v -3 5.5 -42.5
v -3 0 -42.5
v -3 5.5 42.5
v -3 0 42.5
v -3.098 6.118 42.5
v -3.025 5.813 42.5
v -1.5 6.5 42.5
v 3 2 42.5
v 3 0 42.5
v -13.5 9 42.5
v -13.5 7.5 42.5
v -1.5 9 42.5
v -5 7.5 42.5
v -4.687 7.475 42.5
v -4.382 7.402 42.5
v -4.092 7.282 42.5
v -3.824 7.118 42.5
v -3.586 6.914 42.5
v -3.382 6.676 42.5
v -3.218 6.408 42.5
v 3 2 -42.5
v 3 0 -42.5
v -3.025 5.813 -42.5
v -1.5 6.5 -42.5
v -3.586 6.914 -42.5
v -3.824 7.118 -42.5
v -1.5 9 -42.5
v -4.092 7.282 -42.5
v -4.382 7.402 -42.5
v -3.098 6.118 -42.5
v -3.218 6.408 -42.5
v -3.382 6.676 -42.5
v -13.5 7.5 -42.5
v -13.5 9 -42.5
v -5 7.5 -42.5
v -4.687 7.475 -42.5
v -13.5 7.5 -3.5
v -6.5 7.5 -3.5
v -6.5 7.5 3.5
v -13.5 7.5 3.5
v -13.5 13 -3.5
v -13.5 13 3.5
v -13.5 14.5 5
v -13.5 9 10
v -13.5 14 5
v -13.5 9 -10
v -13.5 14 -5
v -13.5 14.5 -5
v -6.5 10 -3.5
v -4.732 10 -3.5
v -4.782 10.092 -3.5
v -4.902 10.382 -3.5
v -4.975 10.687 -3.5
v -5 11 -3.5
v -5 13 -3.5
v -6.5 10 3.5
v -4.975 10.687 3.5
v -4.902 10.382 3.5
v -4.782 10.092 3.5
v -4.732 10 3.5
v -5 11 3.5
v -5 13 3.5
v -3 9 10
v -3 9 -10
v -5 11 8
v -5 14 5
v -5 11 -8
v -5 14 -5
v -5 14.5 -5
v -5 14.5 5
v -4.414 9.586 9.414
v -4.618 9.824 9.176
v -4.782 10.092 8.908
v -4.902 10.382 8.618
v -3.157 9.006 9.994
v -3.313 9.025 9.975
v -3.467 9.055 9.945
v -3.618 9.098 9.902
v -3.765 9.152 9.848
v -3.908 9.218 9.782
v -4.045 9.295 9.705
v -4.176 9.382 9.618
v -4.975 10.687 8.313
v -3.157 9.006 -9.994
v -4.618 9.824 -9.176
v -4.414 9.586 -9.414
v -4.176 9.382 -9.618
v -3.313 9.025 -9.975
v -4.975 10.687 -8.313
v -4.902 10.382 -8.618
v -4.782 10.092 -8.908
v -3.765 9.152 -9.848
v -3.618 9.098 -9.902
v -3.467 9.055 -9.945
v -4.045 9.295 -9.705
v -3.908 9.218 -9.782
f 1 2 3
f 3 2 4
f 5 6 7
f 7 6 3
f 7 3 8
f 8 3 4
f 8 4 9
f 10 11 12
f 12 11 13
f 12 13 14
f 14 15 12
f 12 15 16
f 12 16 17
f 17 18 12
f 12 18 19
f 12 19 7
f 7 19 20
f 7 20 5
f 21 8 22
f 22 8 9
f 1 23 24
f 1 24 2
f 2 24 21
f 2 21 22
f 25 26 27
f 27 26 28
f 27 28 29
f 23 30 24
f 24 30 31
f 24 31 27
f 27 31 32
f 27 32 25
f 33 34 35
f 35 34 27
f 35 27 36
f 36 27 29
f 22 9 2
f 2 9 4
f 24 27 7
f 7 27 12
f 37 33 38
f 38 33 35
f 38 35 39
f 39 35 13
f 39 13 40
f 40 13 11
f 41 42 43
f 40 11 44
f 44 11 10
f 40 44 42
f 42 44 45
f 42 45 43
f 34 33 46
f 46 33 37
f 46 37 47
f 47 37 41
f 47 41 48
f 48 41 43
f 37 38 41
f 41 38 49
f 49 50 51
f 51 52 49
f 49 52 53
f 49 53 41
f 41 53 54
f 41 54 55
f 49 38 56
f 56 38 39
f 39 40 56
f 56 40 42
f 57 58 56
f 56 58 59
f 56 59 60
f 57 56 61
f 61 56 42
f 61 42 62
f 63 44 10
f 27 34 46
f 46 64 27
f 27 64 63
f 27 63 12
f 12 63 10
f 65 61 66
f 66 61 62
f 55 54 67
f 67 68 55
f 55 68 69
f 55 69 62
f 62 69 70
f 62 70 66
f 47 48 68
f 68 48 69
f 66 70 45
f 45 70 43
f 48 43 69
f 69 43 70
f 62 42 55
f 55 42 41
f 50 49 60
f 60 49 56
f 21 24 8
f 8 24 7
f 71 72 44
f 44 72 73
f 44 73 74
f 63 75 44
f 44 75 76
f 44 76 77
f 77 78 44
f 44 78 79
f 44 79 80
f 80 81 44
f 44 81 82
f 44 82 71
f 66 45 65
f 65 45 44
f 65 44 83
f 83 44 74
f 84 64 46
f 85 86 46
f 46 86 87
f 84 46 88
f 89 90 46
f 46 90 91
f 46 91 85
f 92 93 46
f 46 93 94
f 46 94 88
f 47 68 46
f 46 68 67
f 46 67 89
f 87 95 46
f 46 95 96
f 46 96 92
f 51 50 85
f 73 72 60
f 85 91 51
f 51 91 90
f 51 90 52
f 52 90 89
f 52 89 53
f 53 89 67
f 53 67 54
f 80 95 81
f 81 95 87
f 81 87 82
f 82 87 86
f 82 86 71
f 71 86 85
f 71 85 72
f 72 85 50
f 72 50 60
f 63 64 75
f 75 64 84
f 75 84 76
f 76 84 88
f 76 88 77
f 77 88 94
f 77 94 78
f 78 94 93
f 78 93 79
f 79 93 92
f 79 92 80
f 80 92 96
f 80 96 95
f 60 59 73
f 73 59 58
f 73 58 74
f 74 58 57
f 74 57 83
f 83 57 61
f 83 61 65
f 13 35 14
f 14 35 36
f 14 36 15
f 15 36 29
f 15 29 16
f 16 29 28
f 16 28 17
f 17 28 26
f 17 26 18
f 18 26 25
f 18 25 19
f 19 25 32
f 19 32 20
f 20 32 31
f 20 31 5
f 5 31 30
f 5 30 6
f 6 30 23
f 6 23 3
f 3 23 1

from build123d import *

# Parameters (mm, degrees)
SKETCH_1_W          = 6
SKETCH_1_H          = 85
EXTRUDE_1_DEPTH     = 1.5
SKETCH_2_W          = 1.5
SKETCH_2_H          = 85
EXTRUDE_2_DEPTH     = 6
EXTRUDE_3_DEPTH     = 1.5
SKETCH_4_W          = 7
SKETCH_4_H          = 7
EXTRUDE_4_DEPTH     = 5.5
SKETCH_5_W          = 7
SKETCH_5_H          = 7
CUT_EXTRUDE_1_DEPTH = 4
SKETCH_6_W          = 7
SKETCH_6_H          = 3
CUT_EXTRUDE_2_DEPTH = 4
CHAMFER_1_SIZE      = 5
CHAMFER_2_SIZE      = 5
FILLET_1_R          = 2
FILLET_2_R          = 2


with BuildPart() as part:
    # Эскиз1 → Бобышка-Вытянуть1 (new body)
    with BuildSketch(Plane(origin=(0, 0, 0), x_dir=(1, 0, 0), z_dir=(0, 1, 0))):
        Rectangle(SKETCH_1_W, SKETCH_1_H)
    extrude(amount=EXTRUDE_1_DEPTH)

    # Эскиз2 → Бобышка-Вытянуть2 (add)
    with BuildSketch(Plane(origin=(0, 1.5, 0), x_dir=(1, 0, 0), z_dir=(0, 1, 0))):
        with Locations((-2.25, 0)):
            Rectangle(SKETCH_2_W, SKETCH_2_H)
    extrude(amount=EXTRUDE_2_DEPTH)

    # Эскиз3 → Бобышка-Вытянуть3 (add)
    with BuildSketch(Plane(origin=(0, 7.5, 0), x_dir=(1, 0, 0), z_dir=(0, 1, 0))):
        Polygon((-1.5, -42.5), (-13.5, -42.5), (-13.5, -3.5), (-6.5, -3.5), (-6.5, 3.5), (-13.5, 3.5), (-13.5, 42.5), (-1.5, 42.5), align=None)
    extrude(amount=EXTRUDE_3_DEPTH)

    # Эскиз4 → Бобышка-Вытянуть4 (add)
    with BuildSketch(Plane(origin=(0, 9, 0), x_dir=(1, 0, 0), z_dir=(0, 1, 0))):
        Polygon((-13.5, -3.5), (-13.5, -5), (-5, -5), (-5, 5), (-13.5, 5), (-13.5, 3.5), (-6.5, 3.5), (-6.5, -3.5), align=None)
        with Locations((-10, 0)):
            Rectangle(SKETCH_4_W, SKETCH_4_H)
    extrude(amount=EXTRUDE_4_DEPTH)

    # Эскиз5 → Вырез-Вытянуть1 (cut)
    with BuildSketch(Plane.XZ.offset(-9)):
        with Locations((-10, 0)):
            Rectangle(SKETCH_5_W, SKETCH_5_H)
    extrude(amount=-CUT_EXTRUDE_1_DEPTH, mode=Mode.SUBTRACT)

    # Эскиз6 → Вырез-Вытянуть2 (cut)
    with BuildSketch(Plane(origin=(-5, 0, 0), x_dir=(0, 0, -1), z_dir=(1, 0, 0))):
        with Locations((0, 11.5)):
            Rectangle(SKETCH_6_W, SKETCH_6_H)
    extrude(amount=-CUT_EXTRUDE_2_DEPTH, mode=Mode.SUBTRACT)

    # Фаска1
    # the kernel refuses this chamfer: 5 mm, written as the material it adds along each edge
    with BuildSketch(Plane(origin=(-1.5, 1.5, 42.5), x_dir=(-0.02749587661058636, 0.9996219169112968, 0), z_dir=(0, 0, -1))) as chamfer_1_piece_1_section:
        Polygon((CHAMFER_1_SIZE * 0.999621916911, CHAMFER_1_SIZE * 0.0274958766106), (-CHAMFER_1_SIZE * 0.0274958766106, CHAMFER_1_SIZE * 0.999621916911), (0, 0), align=None)
    chamfer_1_piece_1 = extrude(amount=85, mode=Mode.PRIVATE)
    chamfer_1_piece_1 = split(chamfer_1_piece_1, bisect_by=Plane(origin=(3, 3.179503735, 0), z_dir=(-1, 0, 0)), keep=Keep.TOP, mode=Mode.PRIVATE)
    add(chamfer_1_piece_1)

    # Фаска2
    chamfer_2_edges = [part.edges().sort_by_distance(p)[0] for p in [
        (-9.25, 9, 5),
        (-9.25, 9, -5),
    ]]
    chamfer(chamfer_2_edges, length=CHAMFER_2_SIZE)

    # Скругление1
    # the kernel refuses this fillet: 2 mm, written as the material it adds along each edge
    with BuildSketch(Plane(origin=(-5, 9, -15), x_dir=(1, 0, 0), z_dir=(0, 0, 1))) as fillet_1_piece_1_section:
        with BuildLine():
            CenterArc((FILLET_1_R, FILLET_1_R), FILLET_1_R, 180, 90)
            Line((0, FILLET_1_R), (0, 0))
            Line((0, 0), (FILLET_1_R, 0))
        make_face()
    fillet_1_piece_1 = extrude(amount=30, mode=Mode.PRIVATE)
    fillet_1_piece_1 = split(fillet_1_piece_1, bisect_by=Plane(origin=(-4.478955551, 10.861954239, -8.138045761), z_dir=(0, -0.7071067811865476, 0.7071067811865475)), keep=Keep.TOP, mode=Mode.PRIVATE)
    fillet_1_piece_1 = split(fillet_1_piece_1, bisect_by=Plane(origin=(-4.478955551, 10, -6.592030507), z_dir=(0, -1, 0)), keep=Keep.TOP, mode=Mode.PRIVATE)
    fillet_1_piece_1 = split(fillet_1_piece_1, bisect_by=Plane(origin=(-4.478955551, 9.315938986, -3.5), z_dir=(0, 0, -1)), keep=Keep.TOP, mode=Mode.PRIVATE)
    add(fillet_1_piece_1)
    with BuildSketch(Plane(origin=(-5, 9, -15), x_dir=(1, 0, 0), z_dir=(0, 0, 1))) as fillet_1_piece_2_section:
        with BuildLine():
            CenterArc((FILLET_1_R, FILLET_1_R), FILLET_1_R, 180, 90)
            Line((0, FILLET_1_R), (0, 0))
            Line((0, 0), (FILLET_1_R, 0))
        make_face()
    fillet_1_piece_2 = extrude(amount=30, mode=Mode.PRIVATE)
    fillet_1_piece_2 = split(fillet_1_piece_2, bisect_by=Plane(origin=(-4.950049331, 11.610374757, -7.389625243), z_dir=(0, -0.7071067811865476, 0.7071067811865475)), keep=Keep.TOP, mode=Mode.PRIVATE)
    fillet_1_piece_2 = split(fillet_1_piece_2, bisect_by=Plane(origin=(-4.950049331, 10, -6.093083495), z_dir=(0, 1, 0)), keep=Keep.TOP, mode=Mode.PRIVATE)
    fillet_1_piece_2 = split(fillet_1_piece_2, bisect_by=Plane(origin=(-4.950049331, 10.313833009, -3.5), z_dir=(0, 0, -1)), keep=Keep.TOP, mode=Mode.PRIVATE)
    add(fillet_1_piece_2)
    with BuildSketch(Plane(origin=(-5, 9, -15), x_dir=(1, 0, 0), z_dir=(0, 0, 1))) as fillet_1_piece_3_section:
        with BuildLine():
            CenterArc((FILLET_1_R, FILLET_1_R), FILLET_1_R, 180, 90)
            Line((0, FILLET_1_R), (0, 0))
            Line((0, 0), (FILLET_1_R, 0))
        make_face()
    fillet_1_piece_3 = extrude(amount=30, mode=Mode.PRIVATE)
    fillet_1_piece_3 = split(fillet_1_piece_3, bisect_by=Plane(origin=(-4.48975988, 9.328783529, 3.5), z_dir=(0, 0, -1)), keep=Keep.TOP, mode=Mode.PRIVATE)
    fillet_1_piece_3 = split(fillet_1_piece_3, bisect_by=Plane(origin=(-4.48975988, 10, 0), z_dir=(0, -1, 0)), keep=Keep.TOP, mode=Mode.PRIVATE)
    fillet_1_piece_3 = split(fillet_1_piece_3, bisect_by=Plane(origin=(-4.48975988, 9.328783529, -3.5), z_dir=(0, 0, 1)), keep=Keep.TOP, mode=Mode.PRIVATE)
    add(fillet_1_piece_3)
    with BuildSketch(Plane(origin=(-5, 9, -15), x_dir=(1, 0, 0), z_dir=(0, 0, 1))) as fillet_1_piece_4_section:
        with BuildLine():
            CenterArc((FILLET_1_R, FILLET_1_R), FILLET_1_R, 180, 90)
            Line((0, FILLET_1_R), (0, 0))
            Line((0, 0), (FILLET_1_R, 0))
        make_face()
    fillet_1_piece_4 = extrude(amount=30, mode=Mode.PRIVATE)
    fillet_1_piece_4 = split(fillet_1_piece_4, bisect_by=Plane(origin=(-4.478955551, 10.861954239, 8.138045761), z_dir=(0, -0.7071067811865475, -0.7071067811865476)), keep=Keep.TOP, mode=Mode.PRIVATE)
    fillet_1_piece_4 = split(fillet_1_piece_4, bisect_by=Plane(origin=(-4.478955551, 9.315938986, 3.5), z_dir=(0, 0, 1)), keep=Keep.TOP, mode=Mode.PRIVATE)
    fillet_1_piece_4 = split(fillet_1_piece_4, bisect_by=Plane(origin=(-4.478955551, 10, 6.592030507), z_dir=(0, -1, 0)), keep=Keep.TOP, mode=Mode.PRIVATE)
    add(fillet_1_piece_4)
    with BuildSketch(Plane(origin=(-5, 9, -15), x_dir=(1, 0, 0), z_dir=(0, 0, 1))) as fillet_1_piece_5_section:
        with BuildLine():
            CenterArc((FILLET_1_R, FILLET_1_R), FILLET_1_R, 180, 90)
            Line((0, FILLET_1_R), (0, 0))
            Line((0, 0), (FILLET_1_R, 0))
        make_face()
    fillet_1_piece_5 = extrude(amount=30, mode=Mode.PRIVATE)
    fillet_1_piece_5 = split(fillet_1_piece_5, bisect_by=Plane(origin=(-4.950049331, 11.610374757, 7.389625243), z_dir=(0, -0.7071067811865475, -0.7071067811865476)), keep=Keep.TOP, mode=Mode.PRIVATE)
    fillet_1_piece_5 = split(fillet_1_piece_5, bisect_by=Plane(origin=(-4.950049331, 10.313833009, 3.5), z_dir=(0, 0, 1)), keep=Keep.TOP, mode=Mode.PRIVATE)
    fillet_1_piece_5 = split(fillet_1_piece_5, bisect_by=Plane(origin=(-4.950049331, 10, 6.093083495), z_dir=(0, 1, 0)), keep=Keep.TOP, mode=Mode.PRIVATE)
    add(fillet_1_piece_5)

    # Скругление2
    fillet_2_edges = [part.edges().sort_by_distance(p)[0] for p in [
        (-3, 7.5, 0),
    ]]
    fillet(fillet_2_edges, radius=FILLET_2_R)


solid = part.part
